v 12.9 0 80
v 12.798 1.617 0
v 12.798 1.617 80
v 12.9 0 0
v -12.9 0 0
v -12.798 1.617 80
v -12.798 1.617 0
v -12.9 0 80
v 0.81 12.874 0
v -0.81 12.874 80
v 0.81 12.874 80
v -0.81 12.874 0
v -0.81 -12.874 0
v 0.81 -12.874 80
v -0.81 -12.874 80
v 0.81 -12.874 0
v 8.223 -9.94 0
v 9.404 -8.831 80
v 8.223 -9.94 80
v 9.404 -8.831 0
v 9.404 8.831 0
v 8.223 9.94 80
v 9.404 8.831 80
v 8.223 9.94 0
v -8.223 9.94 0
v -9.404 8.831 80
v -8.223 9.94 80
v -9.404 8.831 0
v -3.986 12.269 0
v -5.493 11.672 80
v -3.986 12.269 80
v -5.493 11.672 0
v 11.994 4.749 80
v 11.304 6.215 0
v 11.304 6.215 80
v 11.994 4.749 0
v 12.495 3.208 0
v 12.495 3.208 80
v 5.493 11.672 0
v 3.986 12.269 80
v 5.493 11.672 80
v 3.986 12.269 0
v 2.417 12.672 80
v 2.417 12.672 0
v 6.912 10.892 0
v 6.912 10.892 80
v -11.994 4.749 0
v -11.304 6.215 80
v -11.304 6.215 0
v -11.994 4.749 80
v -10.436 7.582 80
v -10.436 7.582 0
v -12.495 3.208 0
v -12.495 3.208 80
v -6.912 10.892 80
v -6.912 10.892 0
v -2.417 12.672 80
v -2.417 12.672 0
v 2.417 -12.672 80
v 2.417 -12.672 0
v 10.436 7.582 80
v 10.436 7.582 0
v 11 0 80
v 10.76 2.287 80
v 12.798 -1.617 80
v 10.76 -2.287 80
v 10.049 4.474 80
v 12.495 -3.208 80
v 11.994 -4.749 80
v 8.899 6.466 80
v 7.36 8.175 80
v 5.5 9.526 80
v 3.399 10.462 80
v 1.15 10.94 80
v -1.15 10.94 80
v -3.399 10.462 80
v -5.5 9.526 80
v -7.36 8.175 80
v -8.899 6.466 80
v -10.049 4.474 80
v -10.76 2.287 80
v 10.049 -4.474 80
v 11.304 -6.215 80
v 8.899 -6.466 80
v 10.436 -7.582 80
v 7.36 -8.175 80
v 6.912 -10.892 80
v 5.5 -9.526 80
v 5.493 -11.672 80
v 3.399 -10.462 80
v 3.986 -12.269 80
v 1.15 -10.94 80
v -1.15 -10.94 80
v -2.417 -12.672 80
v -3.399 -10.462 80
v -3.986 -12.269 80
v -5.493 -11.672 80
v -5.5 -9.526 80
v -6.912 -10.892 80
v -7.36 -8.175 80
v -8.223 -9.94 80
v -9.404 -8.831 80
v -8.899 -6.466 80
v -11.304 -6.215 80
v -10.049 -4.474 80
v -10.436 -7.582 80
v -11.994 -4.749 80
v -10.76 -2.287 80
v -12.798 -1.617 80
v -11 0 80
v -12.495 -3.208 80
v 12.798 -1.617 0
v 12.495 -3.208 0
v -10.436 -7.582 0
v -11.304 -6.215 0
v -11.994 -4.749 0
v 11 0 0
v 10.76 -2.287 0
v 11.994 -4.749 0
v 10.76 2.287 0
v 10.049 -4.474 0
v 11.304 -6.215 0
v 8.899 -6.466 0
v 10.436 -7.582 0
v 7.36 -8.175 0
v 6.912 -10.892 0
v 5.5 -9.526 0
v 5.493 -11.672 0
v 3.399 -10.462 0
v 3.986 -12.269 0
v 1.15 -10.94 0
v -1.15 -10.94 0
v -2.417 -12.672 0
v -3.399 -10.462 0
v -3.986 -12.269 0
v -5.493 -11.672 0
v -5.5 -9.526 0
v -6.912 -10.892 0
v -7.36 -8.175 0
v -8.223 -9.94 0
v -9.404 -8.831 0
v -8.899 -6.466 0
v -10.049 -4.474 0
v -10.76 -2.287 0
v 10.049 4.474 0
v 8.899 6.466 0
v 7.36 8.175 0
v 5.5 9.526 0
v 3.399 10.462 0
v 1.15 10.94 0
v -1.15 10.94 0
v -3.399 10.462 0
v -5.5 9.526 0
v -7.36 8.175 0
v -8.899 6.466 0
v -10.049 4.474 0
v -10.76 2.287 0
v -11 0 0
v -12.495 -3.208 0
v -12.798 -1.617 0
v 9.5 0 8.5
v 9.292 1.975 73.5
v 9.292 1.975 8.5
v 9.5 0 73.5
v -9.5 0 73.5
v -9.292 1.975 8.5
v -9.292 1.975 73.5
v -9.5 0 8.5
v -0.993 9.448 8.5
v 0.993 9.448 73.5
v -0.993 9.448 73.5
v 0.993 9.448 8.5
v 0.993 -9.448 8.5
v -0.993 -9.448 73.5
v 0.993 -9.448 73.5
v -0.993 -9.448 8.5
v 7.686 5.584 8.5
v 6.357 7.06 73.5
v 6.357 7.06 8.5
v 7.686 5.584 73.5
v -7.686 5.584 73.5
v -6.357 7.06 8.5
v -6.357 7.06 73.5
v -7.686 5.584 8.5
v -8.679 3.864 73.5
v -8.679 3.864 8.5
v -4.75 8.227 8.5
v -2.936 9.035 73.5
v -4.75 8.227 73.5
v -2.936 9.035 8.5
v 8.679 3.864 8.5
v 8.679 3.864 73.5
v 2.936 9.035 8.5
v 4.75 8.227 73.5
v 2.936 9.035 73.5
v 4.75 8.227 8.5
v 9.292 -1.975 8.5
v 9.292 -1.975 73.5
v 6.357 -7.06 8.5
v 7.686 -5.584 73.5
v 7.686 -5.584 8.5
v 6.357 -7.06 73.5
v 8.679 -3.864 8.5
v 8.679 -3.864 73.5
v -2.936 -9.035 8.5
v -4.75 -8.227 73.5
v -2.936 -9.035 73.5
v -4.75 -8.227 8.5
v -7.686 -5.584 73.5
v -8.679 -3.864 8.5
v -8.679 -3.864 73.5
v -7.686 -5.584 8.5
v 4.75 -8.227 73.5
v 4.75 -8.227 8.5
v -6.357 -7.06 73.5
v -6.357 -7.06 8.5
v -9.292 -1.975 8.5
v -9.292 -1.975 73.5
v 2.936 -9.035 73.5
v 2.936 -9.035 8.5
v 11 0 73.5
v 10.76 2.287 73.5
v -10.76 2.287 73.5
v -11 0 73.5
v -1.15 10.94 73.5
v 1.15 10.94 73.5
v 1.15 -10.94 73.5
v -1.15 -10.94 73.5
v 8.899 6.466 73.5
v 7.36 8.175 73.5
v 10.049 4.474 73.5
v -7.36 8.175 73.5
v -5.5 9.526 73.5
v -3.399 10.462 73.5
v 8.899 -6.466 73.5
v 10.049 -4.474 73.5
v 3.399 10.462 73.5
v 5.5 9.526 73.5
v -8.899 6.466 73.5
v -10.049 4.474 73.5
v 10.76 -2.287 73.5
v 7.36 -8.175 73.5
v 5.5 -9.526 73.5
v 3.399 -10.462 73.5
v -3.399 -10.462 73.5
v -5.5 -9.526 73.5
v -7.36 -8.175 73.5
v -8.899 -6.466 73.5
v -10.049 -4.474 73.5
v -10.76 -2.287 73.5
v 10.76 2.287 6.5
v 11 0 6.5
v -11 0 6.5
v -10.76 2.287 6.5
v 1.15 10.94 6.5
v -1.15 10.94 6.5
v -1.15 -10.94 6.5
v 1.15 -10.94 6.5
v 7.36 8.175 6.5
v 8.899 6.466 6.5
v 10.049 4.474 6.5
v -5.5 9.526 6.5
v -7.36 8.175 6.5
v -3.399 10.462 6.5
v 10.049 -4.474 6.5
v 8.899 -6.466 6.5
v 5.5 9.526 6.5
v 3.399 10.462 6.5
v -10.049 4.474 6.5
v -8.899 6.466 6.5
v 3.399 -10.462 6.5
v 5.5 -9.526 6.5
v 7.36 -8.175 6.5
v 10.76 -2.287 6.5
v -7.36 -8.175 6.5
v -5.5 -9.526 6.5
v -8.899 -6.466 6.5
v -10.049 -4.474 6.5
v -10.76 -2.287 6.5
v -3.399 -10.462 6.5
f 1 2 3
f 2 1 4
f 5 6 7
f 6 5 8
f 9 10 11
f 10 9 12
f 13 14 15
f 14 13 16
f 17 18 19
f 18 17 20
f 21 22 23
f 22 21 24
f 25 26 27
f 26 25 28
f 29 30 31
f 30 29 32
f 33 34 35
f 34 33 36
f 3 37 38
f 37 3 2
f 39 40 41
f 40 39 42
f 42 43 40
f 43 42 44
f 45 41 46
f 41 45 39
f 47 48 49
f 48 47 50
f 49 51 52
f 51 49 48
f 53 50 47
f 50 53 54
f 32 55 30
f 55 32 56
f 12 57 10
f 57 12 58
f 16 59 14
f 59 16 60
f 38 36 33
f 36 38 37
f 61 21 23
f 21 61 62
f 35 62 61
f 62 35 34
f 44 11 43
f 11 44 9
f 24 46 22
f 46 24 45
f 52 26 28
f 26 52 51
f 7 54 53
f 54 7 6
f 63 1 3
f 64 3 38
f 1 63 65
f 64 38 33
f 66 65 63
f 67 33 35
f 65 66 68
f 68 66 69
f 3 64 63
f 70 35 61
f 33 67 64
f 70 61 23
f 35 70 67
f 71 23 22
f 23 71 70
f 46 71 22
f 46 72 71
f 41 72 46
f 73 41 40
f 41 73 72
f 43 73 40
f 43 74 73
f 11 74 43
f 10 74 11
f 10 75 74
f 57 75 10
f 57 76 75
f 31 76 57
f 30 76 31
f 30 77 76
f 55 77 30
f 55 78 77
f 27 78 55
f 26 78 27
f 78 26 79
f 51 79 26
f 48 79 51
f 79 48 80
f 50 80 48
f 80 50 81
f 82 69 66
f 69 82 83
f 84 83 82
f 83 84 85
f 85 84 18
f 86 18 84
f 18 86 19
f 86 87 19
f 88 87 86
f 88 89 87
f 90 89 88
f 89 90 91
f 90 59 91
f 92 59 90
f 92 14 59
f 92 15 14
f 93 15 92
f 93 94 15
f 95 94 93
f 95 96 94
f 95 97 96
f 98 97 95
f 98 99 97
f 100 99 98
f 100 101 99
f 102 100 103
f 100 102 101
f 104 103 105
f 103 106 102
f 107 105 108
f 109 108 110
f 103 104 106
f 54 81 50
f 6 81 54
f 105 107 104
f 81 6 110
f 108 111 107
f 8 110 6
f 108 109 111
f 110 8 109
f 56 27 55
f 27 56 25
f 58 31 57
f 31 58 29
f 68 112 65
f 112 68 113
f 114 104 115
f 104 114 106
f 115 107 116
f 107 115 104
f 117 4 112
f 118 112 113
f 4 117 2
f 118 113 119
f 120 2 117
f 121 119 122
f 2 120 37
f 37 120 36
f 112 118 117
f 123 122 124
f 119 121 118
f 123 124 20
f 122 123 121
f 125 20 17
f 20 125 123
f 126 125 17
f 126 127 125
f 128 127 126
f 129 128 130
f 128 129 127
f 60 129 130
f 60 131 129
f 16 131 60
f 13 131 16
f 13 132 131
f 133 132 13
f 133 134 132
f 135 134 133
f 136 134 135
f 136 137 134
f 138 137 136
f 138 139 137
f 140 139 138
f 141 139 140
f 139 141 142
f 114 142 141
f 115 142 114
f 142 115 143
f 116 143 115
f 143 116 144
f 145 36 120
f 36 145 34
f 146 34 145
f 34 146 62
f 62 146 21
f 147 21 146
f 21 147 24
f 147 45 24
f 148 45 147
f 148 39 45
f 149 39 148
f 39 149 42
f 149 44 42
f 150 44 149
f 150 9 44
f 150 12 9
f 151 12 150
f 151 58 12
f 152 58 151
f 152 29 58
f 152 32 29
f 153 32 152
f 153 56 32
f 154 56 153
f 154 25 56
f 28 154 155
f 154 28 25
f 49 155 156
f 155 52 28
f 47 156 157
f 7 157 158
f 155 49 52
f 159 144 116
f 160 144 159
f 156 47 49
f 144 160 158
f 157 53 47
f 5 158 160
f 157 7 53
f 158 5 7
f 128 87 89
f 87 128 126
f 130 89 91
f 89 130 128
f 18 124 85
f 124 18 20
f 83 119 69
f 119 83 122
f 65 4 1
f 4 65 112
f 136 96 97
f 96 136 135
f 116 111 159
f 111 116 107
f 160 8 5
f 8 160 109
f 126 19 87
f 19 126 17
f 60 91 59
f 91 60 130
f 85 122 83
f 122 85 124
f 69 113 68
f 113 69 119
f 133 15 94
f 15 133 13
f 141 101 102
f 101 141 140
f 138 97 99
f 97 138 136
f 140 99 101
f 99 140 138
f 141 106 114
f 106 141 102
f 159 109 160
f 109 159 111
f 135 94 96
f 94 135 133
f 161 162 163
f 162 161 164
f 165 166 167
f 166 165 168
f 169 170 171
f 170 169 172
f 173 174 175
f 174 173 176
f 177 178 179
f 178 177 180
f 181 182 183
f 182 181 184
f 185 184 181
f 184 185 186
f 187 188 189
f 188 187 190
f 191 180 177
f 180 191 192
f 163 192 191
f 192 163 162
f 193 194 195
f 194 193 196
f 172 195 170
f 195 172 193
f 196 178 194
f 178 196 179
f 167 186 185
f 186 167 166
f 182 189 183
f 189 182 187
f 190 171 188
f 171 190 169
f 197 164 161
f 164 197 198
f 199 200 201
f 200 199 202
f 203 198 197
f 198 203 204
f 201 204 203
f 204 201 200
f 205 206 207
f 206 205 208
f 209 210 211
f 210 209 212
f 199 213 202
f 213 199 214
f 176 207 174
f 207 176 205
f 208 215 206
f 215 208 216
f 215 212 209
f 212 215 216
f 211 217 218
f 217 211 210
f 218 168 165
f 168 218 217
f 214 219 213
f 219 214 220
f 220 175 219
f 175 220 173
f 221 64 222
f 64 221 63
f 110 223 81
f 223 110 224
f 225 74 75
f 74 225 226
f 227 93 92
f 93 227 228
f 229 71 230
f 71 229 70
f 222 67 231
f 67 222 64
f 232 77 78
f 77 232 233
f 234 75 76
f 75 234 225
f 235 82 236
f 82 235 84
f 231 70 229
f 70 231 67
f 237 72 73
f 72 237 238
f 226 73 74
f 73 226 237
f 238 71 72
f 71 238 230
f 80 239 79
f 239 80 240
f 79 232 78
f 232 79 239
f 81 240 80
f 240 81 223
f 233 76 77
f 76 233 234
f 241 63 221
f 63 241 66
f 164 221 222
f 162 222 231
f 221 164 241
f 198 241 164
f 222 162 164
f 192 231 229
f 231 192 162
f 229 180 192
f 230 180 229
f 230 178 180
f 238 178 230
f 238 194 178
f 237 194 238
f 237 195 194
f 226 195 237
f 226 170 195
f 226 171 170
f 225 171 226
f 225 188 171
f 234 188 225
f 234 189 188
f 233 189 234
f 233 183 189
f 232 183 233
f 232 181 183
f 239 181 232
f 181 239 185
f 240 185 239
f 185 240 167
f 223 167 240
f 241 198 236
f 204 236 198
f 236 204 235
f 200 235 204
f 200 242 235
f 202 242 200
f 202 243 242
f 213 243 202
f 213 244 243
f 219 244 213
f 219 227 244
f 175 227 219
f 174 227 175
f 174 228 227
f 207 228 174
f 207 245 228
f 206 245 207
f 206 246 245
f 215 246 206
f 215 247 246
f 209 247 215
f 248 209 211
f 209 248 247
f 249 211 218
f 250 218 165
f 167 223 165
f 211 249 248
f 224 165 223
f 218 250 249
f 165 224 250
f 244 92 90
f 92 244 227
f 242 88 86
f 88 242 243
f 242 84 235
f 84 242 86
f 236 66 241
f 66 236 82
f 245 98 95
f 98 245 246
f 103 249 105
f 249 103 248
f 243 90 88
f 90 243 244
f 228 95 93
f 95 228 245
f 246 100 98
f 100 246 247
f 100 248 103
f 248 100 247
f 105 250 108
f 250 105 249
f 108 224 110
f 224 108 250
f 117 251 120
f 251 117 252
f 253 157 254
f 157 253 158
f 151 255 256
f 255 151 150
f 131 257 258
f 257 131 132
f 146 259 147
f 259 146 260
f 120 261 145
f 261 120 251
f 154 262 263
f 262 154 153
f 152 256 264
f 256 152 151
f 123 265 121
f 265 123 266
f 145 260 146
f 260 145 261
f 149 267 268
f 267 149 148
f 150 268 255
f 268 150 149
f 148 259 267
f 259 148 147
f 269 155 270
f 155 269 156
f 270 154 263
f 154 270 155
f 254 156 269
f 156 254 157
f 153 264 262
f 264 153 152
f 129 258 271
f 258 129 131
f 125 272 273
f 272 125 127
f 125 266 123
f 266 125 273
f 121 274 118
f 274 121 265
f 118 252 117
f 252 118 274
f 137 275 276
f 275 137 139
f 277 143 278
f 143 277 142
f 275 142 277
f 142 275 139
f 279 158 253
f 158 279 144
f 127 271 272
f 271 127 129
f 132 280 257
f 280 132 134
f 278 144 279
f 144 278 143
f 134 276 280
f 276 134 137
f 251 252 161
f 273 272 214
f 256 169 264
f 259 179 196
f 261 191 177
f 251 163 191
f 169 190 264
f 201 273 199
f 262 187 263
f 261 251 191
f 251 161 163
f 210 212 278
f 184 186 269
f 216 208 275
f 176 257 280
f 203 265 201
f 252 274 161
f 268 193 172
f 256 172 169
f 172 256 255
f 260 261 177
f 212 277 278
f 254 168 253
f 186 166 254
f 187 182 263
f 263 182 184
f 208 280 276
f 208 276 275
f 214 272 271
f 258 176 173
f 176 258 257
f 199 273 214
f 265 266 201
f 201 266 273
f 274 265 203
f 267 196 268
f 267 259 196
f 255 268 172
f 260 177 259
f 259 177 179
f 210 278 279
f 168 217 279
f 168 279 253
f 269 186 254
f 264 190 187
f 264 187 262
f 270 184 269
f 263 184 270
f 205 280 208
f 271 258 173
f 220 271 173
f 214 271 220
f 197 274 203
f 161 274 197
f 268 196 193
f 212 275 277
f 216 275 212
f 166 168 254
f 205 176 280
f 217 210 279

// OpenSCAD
/* Spool holder for Monoprice Mini Delta (MPMD) 3D printer

    Author:  Tom Clupper
    Date: 4/11/2020
    License: Attribution-ShareAlike 4.0 International (https://creativecommons.org/licenses/by-sa/4.0)
    
    NOTES:
        - Print (1) part
        - This can be printd on a stock MPMD
        - All dimensions in mm
        - No Supports needed
        - For use with standard 608ZZ ball bearing (8x22x7 mm)
*/

OD = 26-0.2;
ID = 19;
Height = 80;
BearingDiameter = 22;
BearingHeight = 7-0.5;


difference(){

    // Main cylinder
    cylinder(h=Height, r=OD/2, center=false, $fn=50);
        
    // Through hole
    cylinder(h=Height, r=ID/2, center=false, $fn=30);
        
   // Top bearing relief
    translate([0,0,Height-BearingHeight]) cylinder(h=BearingHeight, r=BearingDiameter/2, center=false, $fn=30);
        
   // Bottom bearing relief
    translate([0,0,0]) cylinder(h=BearingHeight, r=BearingDiameter/2, center=false, $fn=30);
    translate([0,0,BearingHeight]) cylinder(h=2,r1=BearingDiameter/2,r2=ID/2,center=false,$fn=30);
    
}
